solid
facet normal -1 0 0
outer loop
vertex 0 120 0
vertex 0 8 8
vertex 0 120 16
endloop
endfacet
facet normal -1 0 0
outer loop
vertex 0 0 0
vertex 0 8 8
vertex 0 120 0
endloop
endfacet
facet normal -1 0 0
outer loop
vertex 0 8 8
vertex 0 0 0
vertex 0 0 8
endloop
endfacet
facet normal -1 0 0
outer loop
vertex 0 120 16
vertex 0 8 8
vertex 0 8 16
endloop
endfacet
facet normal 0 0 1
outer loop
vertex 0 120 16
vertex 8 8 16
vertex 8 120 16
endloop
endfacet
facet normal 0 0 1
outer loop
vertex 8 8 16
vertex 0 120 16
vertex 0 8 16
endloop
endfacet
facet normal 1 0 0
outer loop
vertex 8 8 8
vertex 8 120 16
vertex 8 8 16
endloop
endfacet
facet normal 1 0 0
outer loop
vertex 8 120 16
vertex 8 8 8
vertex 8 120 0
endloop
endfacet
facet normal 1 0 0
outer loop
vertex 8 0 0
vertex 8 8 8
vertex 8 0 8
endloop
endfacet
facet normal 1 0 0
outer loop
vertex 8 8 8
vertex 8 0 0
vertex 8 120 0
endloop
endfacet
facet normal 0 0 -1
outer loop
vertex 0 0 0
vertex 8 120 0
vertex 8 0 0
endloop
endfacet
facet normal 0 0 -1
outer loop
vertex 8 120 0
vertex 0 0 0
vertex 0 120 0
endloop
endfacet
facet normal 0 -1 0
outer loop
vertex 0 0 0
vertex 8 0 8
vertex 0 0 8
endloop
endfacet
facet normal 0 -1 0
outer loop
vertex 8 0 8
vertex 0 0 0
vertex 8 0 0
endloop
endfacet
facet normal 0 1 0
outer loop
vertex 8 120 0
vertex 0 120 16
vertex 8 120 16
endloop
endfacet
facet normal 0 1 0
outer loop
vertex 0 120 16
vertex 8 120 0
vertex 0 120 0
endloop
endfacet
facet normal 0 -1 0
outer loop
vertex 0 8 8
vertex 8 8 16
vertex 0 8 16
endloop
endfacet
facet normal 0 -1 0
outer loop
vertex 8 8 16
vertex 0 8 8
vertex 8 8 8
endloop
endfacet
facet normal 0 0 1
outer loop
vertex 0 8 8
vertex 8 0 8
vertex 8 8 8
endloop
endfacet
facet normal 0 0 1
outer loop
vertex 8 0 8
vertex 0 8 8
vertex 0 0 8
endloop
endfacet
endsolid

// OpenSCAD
height = 120;

// how big the frame itself will be
border_size = 8;

difference() {
	cube([border_size, height, border_size * 2]);

	translate([border_size * -1, border_size * -2, border_size * 1]) {
		cube([border_size * 3, border_size * 3, border_size * 3]);
	}
}
